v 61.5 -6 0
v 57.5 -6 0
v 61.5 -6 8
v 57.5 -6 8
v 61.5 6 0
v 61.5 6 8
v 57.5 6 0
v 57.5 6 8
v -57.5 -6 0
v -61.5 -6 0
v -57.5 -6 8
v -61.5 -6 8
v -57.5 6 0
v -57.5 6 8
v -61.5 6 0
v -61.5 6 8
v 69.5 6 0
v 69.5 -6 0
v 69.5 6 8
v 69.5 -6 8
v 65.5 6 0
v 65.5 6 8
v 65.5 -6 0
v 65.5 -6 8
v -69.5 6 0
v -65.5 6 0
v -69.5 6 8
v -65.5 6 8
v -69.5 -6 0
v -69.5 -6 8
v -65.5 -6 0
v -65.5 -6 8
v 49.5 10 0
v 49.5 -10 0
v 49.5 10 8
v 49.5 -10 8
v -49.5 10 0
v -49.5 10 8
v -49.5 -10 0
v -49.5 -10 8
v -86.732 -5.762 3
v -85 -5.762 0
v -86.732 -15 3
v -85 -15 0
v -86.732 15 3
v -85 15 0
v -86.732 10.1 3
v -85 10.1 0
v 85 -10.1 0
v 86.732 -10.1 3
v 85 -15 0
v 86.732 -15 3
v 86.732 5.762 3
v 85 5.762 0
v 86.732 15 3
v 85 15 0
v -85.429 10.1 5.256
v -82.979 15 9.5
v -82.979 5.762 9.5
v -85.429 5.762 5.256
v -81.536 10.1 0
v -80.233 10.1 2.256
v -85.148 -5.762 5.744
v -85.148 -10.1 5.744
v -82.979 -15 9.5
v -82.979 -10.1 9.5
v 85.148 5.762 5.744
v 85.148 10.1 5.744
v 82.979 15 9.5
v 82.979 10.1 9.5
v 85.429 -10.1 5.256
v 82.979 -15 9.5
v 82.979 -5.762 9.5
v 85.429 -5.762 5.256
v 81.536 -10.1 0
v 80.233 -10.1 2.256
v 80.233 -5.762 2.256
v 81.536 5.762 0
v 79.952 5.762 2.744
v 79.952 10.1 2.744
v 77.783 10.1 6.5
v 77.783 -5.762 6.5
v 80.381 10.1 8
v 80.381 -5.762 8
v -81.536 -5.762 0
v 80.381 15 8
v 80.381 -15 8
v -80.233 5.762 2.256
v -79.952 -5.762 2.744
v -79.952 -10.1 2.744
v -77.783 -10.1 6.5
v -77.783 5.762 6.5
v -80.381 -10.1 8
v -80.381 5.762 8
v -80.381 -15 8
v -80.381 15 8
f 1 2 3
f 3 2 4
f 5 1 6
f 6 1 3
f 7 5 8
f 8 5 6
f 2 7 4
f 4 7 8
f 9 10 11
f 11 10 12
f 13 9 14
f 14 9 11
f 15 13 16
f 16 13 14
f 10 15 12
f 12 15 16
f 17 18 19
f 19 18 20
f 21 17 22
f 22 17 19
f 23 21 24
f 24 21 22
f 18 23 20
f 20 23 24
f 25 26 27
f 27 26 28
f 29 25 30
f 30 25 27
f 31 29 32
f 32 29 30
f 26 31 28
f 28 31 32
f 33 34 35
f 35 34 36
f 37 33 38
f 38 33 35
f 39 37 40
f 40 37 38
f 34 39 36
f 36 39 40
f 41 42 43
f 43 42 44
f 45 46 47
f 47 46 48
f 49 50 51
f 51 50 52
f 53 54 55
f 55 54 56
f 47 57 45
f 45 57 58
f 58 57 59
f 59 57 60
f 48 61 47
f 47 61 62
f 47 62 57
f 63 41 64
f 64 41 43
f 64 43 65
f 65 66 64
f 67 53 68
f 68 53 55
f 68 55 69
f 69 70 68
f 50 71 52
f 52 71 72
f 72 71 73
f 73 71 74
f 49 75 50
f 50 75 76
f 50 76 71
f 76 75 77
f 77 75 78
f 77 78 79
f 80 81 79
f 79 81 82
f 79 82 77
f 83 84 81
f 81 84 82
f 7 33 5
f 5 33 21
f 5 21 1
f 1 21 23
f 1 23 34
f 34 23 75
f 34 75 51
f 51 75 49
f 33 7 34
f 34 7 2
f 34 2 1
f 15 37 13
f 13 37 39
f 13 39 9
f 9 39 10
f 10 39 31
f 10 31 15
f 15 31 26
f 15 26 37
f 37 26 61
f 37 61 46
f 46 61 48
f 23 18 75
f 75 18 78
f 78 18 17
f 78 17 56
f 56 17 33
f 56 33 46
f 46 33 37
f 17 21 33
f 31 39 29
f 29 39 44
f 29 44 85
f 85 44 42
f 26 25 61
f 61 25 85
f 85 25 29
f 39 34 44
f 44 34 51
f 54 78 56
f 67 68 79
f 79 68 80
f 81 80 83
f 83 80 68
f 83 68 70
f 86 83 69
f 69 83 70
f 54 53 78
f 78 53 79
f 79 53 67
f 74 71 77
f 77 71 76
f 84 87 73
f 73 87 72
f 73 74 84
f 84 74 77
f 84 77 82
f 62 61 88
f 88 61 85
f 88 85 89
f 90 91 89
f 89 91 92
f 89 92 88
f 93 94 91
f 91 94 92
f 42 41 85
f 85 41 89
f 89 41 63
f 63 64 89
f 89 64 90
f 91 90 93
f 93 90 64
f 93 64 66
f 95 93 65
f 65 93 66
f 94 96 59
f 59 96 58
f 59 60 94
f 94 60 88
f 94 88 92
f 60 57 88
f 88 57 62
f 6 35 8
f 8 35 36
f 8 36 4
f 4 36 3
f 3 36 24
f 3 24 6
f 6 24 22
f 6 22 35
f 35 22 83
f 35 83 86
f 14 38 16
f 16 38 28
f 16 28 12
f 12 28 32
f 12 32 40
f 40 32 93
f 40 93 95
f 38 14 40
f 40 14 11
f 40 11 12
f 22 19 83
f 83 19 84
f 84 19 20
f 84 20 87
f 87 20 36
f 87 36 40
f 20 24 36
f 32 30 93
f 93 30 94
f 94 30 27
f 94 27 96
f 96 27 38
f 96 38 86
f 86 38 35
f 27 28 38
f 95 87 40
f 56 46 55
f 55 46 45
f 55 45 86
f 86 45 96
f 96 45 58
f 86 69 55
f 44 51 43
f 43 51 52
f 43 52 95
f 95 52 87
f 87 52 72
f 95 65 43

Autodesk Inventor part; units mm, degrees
ref_plane "YZ Plane" through (0, 0, 0) normal (1, 0, 0) x (0, 1, 0)
ref_plane "XZ Plane" through (0, 0, 0) normal (0, 1, 0) x (-1, 0, 0)
ref_plane "XY Plane" through (0, 0, 0) normal (0, 0, 1) x (1, 0, 0)
sketch "Sketch1" plane through (0, 0, 0) normal (0, 0, 1) x (1, 0, 0)
  line L0 (-85, -15) -> (85, -15)
  line L1 (85, -15) -> (85, 15)
  line L2 (85, 15) -> (-85, 15)
  line L3 (-85, 15) -> (-85, -15)
  line L4 (-85, -15) -> (85, 15) construction
  line L5 (85, -15) -> (-85, 15) construction
  point P0 (0, 0)
  dimension "d0" = 170
  dimension "d1" = 30
extrude "Extrusion1" add sketch "Sketch1" along normal blind 8
sketch "Sketch2" plane through (-85, 15, 0) normal (0, 1, 0) x (1, 0, 0)
  line L0 (170, 0) -> (0, 0) construction
  line L1 (0, 0) -> (0, -8) construction
  line L2 (170, -8) -> (0, -8) construction
  line L3 (170, 0) -> (170, -8) construction
  line L4 (0, -8) -> (0, 0)
  line L5 (85, 0) -> (85, -8) construction
  line L6 (0, 0) -> (4.6188, -8)
  line L7 (0, -8) -> (4.6188, -8)
  line L8 (170, -8) -> (170, 0)
  line L9 (170, 0) -> (165.3812, -8)
  line L10 (170, -8) -> (165.3812, -8)
  point P0 (1.7321, 0)
  dimension "d7" = 30
extrude "Extrusion3" cut sketch "Sketch2" against normal through all
sketch "Sketch3" plane through (-85, -15, 0) normal (-0.866, 0, 0.5) x (0.5, 0, 0.866)
  line L0 (9.2376, 0) -> (0, 0) construction
  line L1 (9.2376, 30) -> (9.2376, 0) construction
  line L2 (0, 30) -> (9.2376, 30) construction
  line L3 (0, 30) -> (0, 0) construction
  line L4 (9.2376, 30) -> (0, 30)
  line L5 (9.2376, 30) -> (9.2376, 20.7624)
  line L6 (0, 0) -> (9.2376, 0)
  line L7 (0, 0) -> (0, 9.2376)
  line L8 (9.2376, 30) -> (9.2376, 0) projected
  line L9 (9.2376, 20.7624) -> (4.3376, 20.7624)
  line L10 (4.3376, 20.7624) -> (4.3376, 25.1)
  line L11 (4.3376, 25.1) -> (0, 25.1)
  line L12 (0, 30) -> (0, 25.1)
  line L13 (0, 9.2376) -> (4.9, 9.2376)
  line L14 (4.9, 9.2376) -> (4.9, 4.9)
  line L15 (4.9, 4.9) -> (9.2376, 4.9)
  line L16 (9.2376, 0) -> (9.2376, 4.9)
  point P0 (42.5, 15)
  point P1 (4.6188, 30)
  point P2 (9.2376, 15)
  point P3 (4.6188, 30)
  point P4 (9.2376, 15)
  dimension "d15" = 4.9
  dimension "d16" = 4.9
  dimension "d17" = 4.9
  dimension "d18" = 4.9
extrude "Extrusion4" add sketch "Sketch3" along normal blind 3
sketch "Sketch4" plane through (-85, -5.7624, 0) normal (-0.866, 0, 0.5) x (0.5, 0, 0.866)
  line L0 (4.9, -4.3376) -> (9.2376, -4.3376) projected
  line L1 (9.2376, 11.5248) -> (9.2376, -4.3376) projected
  line L2 (9.2376, 11.5248) -> (4.3376, 11.5248) projected
  line L3 (4.3376, 11.5248) -> (4.3376, 15.8624) projected
  line L4 (4.3376, 15.8624) -> (0, 15.8624) projected
  line L5 (0, 15.8624) -> (0, 0) projected
  line L6 (0, 0) -> (4.9, 0) projected
  line L7 (4.9, 0) -> (4.9, -4.3376) projected
  point P0 (42.5, 5.7624)
extrude "Extrusion5" cut sketch "Sketch4" against normal blind 3
sketch "Sketch6" plane through (85, -15, 0) normal (0.866, 0, 0.5) x (0.5, 0, -0.866)
  line L0 (0, 0) -> (-9.2376, 0) construction
  line L1 (0, 0) -> (0, 30) construction
  line L2 (-9.2376, 30) -> (0, 30) construction
  line L3 (-9.2376, 0) -> (-9.2376, 30) construction
  line L4 (0, 0) -> (-9.2376, 0)
  line L5 (-9.2376, 0) -> (-9.2376, 9.2376)
  line L6 (-9.2376, 9.2376) -> (-4.3376, 9.2376)
  line L7 (-4.3376, 9.2376) -> (-4.3376, 4.9)
  line L8 (-4.3376, 4.9) -> (0, 4.9)
  line L9 (0, 0) -> (0, 4.9)
  line L10 (0, 0) -> (0, 30) projected
  line L11 (0, 30) -> (-9.2376, 30)
  line L12 (-9.2376, 25.1) -> (-9.2376, 30)
  line L13 (-9.2376, 25.1) -> (-4.9, 25.1)
  line L14 (-4.9, 25.1) -> (-4.9, 20.7624)
  line L15 (-4.9, 20.7624) -> (0, 20.7624)
  line L16 (0, 20.7624) -> (0, 30)
  point P0 (-42.5, 15)
  point P1 (-7.0688, 25.1)
  dimension "d24" = 4.9
  dimension "d25" = 4.9
  dimension "d26" = 4.9
  dimension "d27" = 4.9
extrude "Extrusion7" add sketch "Sketch6" along normal blind 3
sketch "Sketch7" plane through (85, -10.1, 0) normal (0.866, 0, 0.5) x (0.5, 0, -0.866)
  line L0 (-4.9, 20.2) -> (-9.2376, 20.2) projected
  line L1 (-9.2376, 4.3376) -> (-9.2376, 20.2) projected
  line L2 (-9.2376, 4.3376) -> (-4.3376, 4.3376) projected
  line L3 (-4.3376, 4.3376) -> (-4.3376, 0) projected
  line L4 (-4.3376, 0) -> (0, 0) projected
  line L5 (0, 0) -> (0, 15.8624) projected
  line L6 (0, 15.8624) -> (-4.9, 15.8624) projected
  line L7 (-4.9, 15.8624) -> (-4.9, 20.2) projected
  point P0 (-42.5, 10.1)
extrude "Extrusion8" cut sketch "Sketch7" against normal blind 3
sketch "Sketch5" plane through (-85, -15, 0) normal (0, -1, 0) x (1, 0, 0)
  line L0 (4.6188, 8) -> (165.3812, 8) construction
  line L1 (4.6188, 8) -> (2.0207, 9.5) construction
  line L2 (-2.5981, 1.5) -> (2.0207, 9.5) construction
  line L3 (0, 0) -> (-2.5981, 1.5) construction
  line L4 (0, 0) -> (170, 0) construction
  line L5 (0, 0) -> (-2.5981, 1.5)
  line L6 (-1.7321, 3) -> (-2.5981, 1.5)
  line L7 (0, 0) -> (-1.7321, 3)
  line L8 (170, 0) -> (172.5981, 1.5) projected
  line L9 (167.9793, 9.5) -> (172.5981, 1.5) projected
  line L10 (165.3812, 8) -> (167.9793, 9.5) projected
  line L11 (170, 0) -> (171.7321, 3)
  line L12 (171.7321, 3) -> (172.5981, 1.5)
  line L13 (172.5981, 1.5) -> (170, 0)
  point P0 (85, 0)
  dimension "d21" = 30
  dimension "d32" = 30
extrude "Extrusion6" cut sketch "Sketch5" against normal through all
sketch "Sketch9" plane through (0, 0, 8) normal (0, 0, 1) x (1, 0, 0)
  line L0 (80.3812, -15) -> (80.3812, -5.7624) construction
  line L1 (80.3812, -5.7624) -> (80.3812, 10.1) construction
  line L2 (80.3812, 10.1) -> (80.3812, 15) construction
  line L3 (80.3812, 15) -> (-80.3812, 15) construction
  line L4 (-80.3812, 15) -> (-80.3812, 5.7624) construction
  line L5 (-80.3812, 5.7624) -> (-80.3812, -10.1) construction
  line L6 (-80.3812, -10.1) -> (-80.3812, -15) construction
  line L7 (-80.3812, -15) -> (80.3812, -15) construction
  line L8 (49.5, -10) -> (-49.5, -10)
  line L9 (-49.5, -10) -> (-49.5, 10)
  line L10 (-49.5, 10) -> (49.5, 10)
  line L11 (49.5, 10) -> (49.5, -10)
  line L12 (49.5, -10) -> (-49.5, 10) construction
  line L13 (-49.5, -10) -> (49.5, 10) construction
  line L14 (73.5, -10) -> (53.5, -10) construction
  line L15 (53.5, -10) -> (53.5, 10) construction
  line L16 (53.5, 10) -> (73.5, 10) construction
  line L17 (73.5, 10) -> (73.5, -10) construction
  line L18 (63.5, -10) -> (63.5, 10) construction
  line L19 (53.5, 0) -> (73.5, 0) construction
  line L20 (69.5, -6) -> (57.5, -6) construction
  line L21 (57.5, -6) -> (57.5, 6) construction
  line L22 (57.5, 6) -> (69.5, 6) construction
  line L23 (69.5, 6) -> (69.5, -6) construction
  line L24 (69.5, -6) -> (57.5, 6) construction
  line L25 (57.5, -6) -> (69.5, 6) construction
  line L26 (69.5, -6) -> (65.5, -6)
  line L27 (65.5, -6) -> (65.5, 6)
  line L28 (65.5, 6) -> (69.5, 6)
  line L29 (69.5, 6) -> (69.5, -6)
  line L30 (57.5, -6) -> (61.5, -6)
  line L31 (61.5, -6) -> (61.5, 6)
  line L32 (61.5, 6) -> (57.5, 6)
  line L33 (57.5, 6) -> (57.5, -6)
  line L34 (0, -10) -> (0, 10) construction
  line L35 (-69.5, -6) -> (-57.5, -6) construction
  line L36 (-57.5, -6) -> (-57.5, 6) construction
  line L37 (-57.5, 6) -> (-69.5, 6) construction
  line L38 (-69.5, 6) -> (-69.5, -6) construction
  line L39 (-69.5, -6) -> (-57.5, 6) construction
  line L40 (-57.5, -6) -> (-69.5, 6) construction
  line L41 (-69.5, -6) -> (-65.5, -6)
  line L42 (-65.5, -6) -> (-65.5, 6)
  line L43 (-65.5, 6) -> (-69.5, 6)
  line L44 (-69.5, 6) -> (-69.5, -6)
  line L45 (-57.5, -6) -> (-61.5, -6)
  line L46 (-61.5, -6) -> (-61.5, 6)
  line L47 (-61.5, 6) -> (-57.5, 6)
  line L48 (-57.5, 6) -> (-57.5, -6)
  point P0 (0, 0)
  point P1 (49.5, 0)
  point P2 (63.5, 0)
  point P3 (-63.5, 0)
  dimension "d53" = 99
  dimension "d54" = 20
  dimension "d55" = 20
  dimension "d56" = 20
  dimension "d57" = 4
  dimension "d58" = 12
  dimension "d60" = 4
  dimension "d61" = 12
  dimension "d62" = 4
  dimension "d63" = 12
extrude "Extrusion10" cut sketch "Sketch9" against normal through all
properties part number "base"
